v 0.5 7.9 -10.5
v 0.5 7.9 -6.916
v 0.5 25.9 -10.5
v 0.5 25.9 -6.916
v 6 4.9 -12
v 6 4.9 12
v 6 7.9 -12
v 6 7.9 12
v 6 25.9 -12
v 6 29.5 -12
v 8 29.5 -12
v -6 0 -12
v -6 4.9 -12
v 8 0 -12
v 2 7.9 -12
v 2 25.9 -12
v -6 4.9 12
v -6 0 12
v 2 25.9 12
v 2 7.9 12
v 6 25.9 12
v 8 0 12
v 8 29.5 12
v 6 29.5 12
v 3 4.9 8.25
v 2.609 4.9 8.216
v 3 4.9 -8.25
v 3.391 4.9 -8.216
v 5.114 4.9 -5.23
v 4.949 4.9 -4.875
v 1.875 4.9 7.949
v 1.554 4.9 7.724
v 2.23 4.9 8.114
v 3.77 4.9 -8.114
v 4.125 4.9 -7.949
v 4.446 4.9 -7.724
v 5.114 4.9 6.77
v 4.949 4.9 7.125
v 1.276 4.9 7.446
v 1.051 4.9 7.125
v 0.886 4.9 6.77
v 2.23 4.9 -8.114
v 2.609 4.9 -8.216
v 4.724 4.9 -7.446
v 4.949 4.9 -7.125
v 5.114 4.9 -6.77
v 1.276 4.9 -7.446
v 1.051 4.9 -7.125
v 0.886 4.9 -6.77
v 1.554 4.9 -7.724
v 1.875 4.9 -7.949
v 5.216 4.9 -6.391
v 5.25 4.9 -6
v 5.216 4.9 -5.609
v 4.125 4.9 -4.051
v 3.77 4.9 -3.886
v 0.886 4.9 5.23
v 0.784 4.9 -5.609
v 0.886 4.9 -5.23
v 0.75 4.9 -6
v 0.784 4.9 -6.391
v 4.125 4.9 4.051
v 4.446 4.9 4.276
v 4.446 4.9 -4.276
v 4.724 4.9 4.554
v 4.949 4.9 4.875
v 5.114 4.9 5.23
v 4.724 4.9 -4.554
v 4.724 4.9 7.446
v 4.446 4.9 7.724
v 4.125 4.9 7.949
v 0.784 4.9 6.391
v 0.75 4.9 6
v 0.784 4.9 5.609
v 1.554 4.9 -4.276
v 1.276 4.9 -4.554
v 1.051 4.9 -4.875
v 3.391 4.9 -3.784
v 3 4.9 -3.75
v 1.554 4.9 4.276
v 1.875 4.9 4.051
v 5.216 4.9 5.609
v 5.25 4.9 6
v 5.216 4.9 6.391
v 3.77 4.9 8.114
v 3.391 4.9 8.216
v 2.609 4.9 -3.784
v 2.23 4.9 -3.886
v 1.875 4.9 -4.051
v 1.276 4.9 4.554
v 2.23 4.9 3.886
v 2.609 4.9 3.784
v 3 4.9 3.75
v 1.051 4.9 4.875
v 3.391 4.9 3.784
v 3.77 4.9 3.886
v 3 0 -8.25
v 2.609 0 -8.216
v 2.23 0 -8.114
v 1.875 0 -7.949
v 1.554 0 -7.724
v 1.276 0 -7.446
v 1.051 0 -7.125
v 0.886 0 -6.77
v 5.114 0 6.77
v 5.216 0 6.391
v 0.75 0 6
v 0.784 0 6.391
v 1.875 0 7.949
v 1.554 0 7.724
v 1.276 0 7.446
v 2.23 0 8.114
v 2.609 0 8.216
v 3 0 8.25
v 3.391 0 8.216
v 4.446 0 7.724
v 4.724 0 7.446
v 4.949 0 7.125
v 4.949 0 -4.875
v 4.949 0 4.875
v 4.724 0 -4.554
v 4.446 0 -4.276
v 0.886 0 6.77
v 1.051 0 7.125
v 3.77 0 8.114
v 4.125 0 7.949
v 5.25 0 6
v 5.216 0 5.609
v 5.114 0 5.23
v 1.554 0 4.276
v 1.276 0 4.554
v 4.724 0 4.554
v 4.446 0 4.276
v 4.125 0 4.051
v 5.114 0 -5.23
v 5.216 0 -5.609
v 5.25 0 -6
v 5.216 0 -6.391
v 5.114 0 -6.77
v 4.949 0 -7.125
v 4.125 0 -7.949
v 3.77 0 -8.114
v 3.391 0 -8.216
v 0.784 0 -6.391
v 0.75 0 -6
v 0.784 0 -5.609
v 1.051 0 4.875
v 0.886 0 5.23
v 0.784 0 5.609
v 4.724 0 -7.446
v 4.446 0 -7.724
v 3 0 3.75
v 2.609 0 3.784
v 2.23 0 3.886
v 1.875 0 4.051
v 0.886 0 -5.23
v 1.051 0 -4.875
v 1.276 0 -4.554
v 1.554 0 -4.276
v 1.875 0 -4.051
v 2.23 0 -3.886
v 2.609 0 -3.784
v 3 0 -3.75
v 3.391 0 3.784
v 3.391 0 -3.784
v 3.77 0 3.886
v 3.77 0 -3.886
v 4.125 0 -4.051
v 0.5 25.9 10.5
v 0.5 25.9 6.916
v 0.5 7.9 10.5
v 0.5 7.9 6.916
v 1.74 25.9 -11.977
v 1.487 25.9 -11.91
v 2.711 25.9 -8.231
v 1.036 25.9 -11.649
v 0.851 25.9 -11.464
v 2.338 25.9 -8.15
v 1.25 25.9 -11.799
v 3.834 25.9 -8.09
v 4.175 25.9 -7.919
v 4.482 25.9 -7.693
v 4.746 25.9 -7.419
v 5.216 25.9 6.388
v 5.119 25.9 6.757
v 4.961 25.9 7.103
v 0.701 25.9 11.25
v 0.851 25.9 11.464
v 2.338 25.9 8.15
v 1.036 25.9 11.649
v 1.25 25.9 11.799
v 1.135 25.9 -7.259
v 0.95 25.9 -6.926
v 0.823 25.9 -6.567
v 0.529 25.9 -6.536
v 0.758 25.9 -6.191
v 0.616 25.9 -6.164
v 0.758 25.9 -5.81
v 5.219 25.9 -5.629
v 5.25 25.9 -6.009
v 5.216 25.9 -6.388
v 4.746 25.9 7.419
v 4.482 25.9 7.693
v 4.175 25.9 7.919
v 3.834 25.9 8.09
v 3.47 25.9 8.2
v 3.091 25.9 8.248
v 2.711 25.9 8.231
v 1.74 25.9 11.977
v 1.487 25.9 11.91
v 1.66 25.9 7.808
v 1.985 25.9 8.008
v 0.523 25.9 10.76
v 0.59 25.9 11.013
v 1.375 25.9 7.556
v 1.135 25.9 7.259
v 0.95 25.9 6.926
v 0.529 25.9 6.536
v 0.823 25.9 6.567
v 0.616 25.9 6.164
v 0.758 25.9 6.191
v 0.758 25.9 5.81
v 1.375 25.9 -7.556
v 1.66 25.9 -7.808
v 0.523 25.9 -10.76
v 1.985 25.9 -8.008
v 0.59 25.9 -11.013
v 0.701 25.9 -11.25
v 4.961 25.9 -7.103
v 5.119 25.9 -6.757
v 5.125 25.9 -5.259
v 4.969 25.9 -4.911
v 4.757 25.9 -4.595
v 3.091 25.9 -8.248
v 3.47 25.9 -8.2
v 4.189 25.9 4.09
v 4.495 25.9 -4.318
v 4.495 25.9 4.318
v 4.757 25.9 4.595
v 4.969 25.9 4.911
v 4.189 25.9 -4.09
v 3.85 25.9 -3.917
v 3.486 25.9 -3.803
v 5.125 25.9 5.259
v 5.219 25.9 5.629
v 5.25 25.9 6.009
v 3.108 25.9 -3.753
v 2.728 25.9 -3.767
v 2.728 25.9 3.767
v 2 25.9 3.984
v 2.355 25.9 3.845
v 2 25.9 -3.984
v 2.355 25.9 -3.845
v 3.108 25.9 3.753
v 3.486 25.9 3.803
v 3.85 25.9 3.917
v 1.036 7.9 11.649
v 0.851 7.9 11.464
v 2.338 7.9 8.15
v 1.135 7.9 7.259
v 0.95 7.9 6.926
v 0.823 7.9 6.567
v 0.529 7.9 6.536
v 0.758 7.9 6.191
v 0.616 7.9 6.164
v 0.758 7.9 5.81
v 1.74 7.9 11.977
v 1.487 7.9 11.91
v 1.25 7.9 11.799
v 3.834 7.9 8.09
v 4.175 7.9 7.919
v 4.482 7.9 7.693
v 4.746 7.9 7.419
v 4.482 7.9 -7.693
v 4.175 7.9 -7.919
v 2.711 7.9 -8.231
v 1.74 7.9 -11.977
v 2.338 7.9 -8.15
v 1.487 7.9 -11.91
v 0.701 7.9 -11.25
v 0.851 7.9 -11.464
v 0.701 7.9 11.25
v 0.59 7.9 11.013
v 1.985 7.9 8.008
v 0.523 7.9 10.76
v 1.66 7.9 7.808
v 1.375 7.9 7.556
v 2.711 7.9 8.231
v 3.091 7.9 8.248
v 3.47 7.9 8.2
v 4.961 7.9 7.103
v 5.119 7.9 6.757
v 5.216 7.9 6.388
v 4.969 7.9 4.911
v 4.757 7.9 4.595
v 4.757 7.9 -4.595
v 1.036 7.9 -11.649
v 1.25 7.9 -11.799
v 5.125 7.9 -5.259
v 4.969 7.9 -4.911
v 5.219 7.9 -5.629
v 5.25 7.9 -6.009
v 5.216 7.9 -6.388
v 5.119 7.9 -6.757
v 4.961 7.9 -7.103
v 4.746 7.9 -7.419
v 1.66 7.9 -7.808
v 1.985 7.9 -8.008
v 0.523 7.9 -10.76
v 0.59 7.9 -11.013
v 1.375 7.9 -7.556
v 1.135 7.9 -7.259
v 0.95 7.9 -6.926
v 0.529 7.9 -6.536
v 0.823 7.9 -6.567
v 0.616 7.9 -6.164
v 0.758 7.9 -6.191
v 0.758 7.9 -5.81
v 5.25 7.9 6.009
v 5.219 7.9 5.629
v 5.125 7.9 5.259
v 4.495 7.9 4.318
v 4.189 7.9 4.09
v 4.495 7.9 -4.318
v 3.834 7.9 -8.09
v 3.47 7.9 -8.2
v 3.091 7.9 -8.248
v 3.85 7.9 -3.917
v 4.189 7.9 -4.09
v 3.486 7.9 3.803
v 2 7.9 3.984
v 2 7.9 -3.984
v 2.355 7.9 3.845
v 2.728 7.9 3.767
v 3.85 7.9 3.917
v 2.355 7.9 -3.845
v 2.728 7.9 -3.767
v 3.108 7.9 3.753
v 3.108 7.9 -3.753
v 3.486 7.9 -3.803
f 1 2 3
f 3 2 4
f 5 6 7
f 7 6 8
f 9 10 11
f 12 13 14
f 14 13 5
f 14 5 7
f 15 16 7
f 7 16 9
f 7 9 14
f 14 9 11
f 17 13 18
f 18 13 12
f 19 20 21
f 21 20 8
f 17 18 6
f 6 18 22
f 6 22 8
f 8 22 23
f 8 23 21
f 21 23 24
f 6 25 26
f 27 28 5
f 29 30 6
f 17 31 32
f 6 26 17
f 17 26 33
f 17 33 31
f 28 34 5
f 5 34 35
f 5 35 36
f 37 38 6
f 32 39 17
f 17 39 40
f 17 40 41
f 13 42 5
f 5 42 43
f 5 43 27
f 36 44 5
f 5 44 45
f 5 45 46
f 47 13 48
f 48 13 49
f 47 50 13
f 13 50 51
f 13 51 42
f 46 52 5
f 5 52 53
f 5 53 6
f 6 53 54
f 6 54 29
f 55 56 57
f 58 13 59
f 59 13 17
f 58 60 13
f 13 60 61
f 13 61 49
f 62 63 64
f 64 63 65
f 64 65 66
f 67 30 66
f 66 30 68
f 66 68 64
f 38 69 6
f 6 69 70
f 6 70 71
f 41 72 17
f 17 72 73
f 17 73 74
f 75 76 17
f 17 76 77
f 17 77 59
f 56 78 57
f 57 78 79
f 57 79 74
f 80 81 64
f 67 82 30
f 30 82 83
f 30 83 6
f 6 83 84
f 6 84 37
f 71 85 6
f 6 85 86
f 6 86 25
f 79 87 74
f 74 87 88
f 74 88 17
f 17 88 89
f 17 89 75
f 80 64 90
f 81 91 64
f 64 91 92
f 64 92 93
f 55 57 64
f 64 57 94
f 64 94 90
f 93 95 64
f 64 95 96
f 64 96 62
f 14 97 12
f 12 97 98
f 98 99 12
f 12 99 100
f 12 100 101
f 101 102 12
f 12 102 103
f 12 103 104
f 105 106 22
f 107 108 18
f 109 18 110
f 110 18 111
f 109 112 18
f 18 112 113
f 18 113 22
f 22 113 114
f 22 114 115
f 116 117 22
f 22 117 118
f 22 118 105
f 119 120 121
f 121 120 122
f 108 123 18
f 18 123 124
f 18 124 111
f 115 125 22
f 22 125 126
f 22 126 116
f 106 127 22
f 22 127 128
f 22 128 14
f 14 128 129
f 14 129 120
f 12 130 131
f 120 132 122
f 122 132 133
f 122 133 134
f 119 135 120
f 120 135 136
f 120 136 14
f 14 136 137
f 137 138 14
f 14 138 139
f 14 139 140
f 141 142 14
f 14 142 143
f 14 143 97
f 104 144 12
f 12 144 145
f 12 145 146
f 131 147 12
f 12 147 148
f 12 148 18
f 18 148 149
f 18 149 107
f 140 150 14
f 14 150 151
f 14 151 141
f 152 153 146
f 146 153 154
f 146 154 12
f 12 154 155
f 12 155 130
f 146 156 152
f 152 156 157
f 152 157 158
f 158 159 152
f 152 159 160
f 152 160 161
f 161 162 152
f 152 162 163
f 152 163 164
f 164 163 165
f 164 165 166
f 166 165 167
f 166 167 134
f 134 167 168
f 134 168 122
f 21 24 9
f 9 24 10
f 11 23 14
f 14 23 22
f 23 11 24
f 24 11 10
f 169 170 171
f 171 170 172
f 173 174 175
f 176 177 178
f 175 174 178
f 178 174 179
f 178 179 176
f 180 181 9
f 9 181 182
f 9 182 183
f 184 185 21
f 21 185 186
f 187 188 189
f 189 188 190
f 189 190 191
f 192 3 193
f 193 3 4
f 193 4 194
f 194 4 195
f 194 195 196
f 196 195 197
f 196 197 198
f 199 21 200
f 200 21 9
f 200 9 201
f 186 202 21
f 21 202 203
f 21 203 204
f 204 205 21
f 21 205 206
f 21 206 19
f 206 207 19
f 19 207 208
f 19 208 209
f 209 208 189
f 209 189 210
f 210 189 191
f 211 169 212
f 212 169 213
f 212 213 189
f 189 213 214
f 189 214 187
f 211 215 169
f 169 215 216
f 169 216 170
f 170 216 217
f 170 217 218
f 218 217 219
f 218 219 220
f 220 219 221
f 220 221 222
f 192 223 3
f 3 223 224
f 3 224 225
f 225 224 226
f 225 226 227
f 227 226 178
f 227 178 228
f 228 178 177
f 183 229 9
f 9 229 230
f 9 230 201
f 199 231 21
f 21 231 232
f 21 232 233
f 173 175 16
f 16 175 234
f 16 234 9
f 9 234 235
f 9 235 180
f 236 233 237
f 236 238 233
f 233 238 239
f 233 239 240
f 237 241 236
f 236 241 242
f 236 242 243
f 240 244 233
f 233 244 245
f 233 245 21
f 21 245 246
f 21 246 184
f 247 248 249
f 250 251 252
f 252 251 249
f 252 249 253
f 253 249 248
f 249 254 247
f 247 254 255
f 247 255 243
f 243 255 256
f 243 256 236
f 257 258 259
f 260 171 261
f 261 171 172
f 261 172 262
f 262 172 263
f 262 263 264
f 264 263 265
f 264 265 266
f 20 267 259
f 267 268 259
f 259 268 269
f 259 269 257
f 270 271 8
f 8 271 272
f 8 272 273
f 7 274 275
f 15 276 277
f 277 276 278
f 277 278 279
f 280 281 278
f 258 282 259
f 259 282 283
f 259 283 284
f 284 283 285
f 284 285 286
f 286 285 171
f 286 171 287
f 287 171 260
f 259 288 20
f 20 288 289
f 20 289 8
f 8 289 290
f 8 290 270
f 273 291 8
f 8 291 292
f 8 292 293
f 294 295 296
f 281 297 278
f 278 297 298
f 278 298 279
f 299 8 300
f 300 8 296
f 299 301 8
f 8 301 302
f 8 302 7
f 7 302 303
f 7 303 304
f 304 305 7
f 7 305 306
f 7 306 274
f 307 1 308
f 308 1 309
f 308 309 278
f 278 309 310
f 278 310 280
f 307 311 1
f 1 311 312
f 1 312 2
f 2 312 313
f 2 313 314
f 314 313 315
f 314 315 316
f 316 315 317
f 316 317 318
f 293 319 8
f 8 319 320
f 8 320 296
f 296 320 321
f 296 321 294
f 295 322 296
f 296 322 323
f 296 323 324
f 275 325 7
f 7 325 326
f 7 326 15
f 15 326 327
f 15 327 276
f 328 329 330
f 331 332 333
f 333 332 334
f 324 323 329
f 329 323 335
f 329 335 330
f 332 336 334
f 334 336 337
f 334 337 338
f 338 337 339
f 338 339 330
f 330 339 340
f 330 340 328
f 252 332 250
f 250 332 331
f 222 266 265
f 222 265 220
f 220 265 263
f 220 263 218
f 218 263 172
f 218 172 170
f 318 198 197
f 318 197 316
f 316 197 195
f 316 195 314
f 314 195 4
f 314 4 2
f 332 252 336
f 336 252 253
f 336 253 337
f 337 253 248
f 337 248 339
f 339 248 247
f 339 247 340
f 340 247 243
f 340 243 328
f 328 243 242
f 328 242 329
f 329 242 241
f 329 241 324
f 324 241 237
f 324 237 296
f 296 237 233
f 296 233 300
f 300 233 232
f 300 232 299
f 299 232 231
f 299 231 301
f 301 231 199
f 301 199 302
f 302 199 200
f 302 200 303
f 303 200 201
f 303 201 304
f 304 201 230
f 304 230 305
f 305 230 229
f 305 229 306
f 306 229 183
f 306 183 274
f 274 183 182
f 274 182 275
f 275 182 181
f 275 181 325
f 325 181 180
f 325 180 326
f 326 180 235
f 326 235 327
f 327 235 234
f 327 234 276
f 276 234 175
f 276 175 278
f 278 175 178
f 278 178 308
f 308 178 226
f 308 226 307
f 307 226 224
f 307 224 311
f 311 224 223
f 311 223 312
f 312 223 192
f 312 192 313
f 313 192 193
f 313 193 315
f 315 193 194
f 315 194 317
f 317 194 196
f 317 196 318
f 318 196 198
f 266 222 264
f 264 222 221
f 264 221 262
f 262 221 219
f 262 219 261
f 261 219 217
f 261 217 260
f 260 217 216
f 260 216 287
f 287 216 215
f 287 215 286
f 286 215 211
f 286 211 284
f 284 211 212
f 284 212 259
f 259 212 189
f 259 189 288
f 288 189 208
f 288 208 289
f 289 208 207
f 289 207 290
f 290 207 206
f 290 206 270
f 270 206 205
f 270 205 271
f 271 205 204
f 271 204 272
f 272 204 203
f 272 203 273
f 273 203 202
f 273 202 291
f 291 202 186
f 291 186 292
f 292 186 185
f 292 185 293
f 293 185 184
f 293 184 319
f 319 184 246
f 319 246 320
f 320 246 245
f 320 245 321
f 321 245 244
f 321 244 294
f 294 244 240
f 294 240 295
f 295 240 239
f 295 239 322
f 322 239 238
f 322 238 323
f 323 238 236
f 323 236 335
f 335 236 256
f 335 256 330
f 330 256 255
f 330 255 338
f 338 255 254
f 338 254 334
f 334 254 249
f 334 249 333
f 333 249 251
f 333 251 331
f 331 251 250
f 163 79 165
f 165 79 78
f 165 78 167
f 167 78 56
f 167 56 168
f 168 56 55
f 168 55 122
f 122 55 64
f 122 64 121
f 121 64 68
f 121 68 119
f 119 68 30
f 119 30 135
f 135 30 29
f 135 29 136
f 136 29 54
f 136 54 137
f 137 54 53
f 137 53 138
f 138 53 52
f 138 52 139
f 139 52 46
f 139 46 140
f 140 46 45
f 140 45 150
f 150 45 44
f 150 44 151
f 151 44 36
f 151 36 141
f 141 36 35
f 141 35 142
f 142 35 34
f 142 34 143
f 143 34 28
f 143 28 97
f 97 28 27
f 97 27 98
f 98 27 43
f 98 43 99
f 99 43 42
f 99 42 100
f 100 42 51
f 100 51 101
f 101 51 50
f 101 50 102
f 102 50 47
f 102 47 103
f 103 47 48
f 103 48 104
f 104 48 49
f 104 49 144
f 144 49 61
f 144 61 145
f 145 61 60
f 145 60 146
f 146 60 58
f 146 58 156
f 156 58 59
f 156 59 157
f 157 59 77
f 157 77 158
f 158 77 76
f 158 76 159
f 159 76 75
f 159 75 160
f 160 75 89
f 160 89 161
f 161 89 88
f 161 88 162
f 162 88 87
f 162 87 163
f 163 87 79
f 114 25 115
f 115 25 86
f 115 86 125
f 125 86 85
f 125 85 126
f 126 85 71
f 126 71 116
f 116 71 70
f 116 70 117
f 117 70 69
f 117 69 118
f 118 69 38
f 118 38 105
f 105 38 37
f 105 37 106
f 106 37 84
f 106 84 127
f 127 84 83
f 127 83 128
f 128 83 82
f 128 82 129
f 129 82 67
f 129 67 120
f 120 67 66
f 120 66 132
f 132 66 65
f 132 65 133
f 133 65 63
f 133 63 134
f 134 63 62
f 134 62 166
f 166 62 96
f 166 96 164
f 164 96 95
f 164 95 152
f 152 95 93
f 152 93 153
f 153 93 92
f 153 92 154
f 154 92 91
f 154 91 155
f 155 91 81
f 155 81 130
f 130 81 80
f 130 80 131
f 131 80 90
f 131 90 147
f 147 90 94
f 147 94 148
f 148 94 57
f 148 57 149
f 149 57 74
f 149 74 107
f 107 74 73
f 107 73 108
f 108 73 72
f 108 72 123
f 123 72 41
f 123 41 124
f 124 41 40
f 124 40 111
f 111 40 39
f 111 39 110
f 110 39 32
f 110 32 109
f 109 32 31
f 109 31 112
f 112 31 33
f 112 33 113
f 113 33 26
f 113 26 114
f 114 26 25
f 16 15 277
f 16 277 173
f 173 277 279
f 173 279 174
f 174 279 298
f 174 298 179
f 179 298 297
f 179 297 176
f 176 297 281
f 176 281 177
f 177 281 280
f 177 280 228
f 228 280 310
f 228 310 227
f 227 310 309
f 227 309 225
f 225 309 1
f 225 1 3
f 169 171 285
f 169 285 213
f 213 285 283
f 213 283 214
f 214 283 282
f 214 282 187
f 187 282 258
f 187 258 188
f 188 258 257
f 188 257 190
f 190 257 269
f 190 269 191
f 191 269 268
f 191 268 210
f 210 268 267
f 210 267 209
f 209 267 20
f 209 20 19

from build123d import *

# Parameters (mm, degrees)
SKETCH1_W           = 12
SKETCH1_H           = 24
BOSS_EXTRUDE1_DEPTH = 4.9
SKETCH2_W           = 2
SKETCH2_H           = 24
BOSS_EXTRUDE2_DEPTH = 29.5
BOSS_EXTRUDE4_START = 3
SKETCH4_W           = 5.5
SKETCH4_H           = 24
BOSS_EXTRUDE4_DEPTH = 18
SKETCH5_W           = 9.25
SKETCH5_H           = 18
CUT_EXTRUDE1_DEPTH  = 1.5
FILLET1_R           = 2.5
SKETCH6_R           = 2.25
CUT_EXTRUDE2_DEPTH  = 30.644729717
FILLET2_R           = 1.5


with BuildPart() as part:
    # Sketch1 → Boss-Extrude1 (new body)
    with BuildSketch(Plane(origin=(0, 0, 0), x_dir=(1, 0, 0), z_dir=(0, 1, 0))):
        Rectangle(SKETCH1_W, SKETCH1_H)
    extrude(amount=BOSS_EXTRUDE1_DEPTH)

    # Sketch2 → Boss-Extrude2 (add)
    with BuildSketch(Plane(origin=(0, 0, 0), x_dir=(1, 0, 0), z_dir=(0, 1, 0))):
        with Locations((7, 0)):
            Rectangle(SKETCH2_W, SKETCH2_H)
    extrude(amount=BOSS_EXTRUDE2_DEPTH)

    # Sketch4 → Boss-Extrude4 (add)
    with BuildSketch(Plane(origin=(0, 4.9, 0), x_dir=(1, 0, 0), z_dir=(0, 1, 0)).offset(BOSS_EXTRUDE4_START)):
        with Locations((3.25, 0)):
            Rectangle(SKETCH4_W, SKETCH4_H)
    extrude(amount=BOSS_EXTRUDE4_DEPTH)

    # Sketch5 → Cut-Extrude1 (cut)
    with BuildSketch(Plane.ZY.offset(-0.5)):
        with Locations((0, 16.9)):
            Rectangle(SKETCH5_W, SKETCH5_H)
    extrude(amount=-CUT_EXTRUDE1_DEPTH, mode=Mode.SUBTRACT)

    # Fillet1
    # the kernel refuses this fillet: 2.5 mm, written as the material it takes off along each edge
    with BuildSketch(Plane(origin=(0.5, 31.628219619, 4.625), x_dir=(0, 0, 1), z_dir=(0, -1, 0)), Plane(origin=(0.5, 7.9, -4.625), x_dir=(0, 0, -1), z_dir=(0, 1, 0))) as fillet1_piece_1:
        with BuildLine():
            CenterArc((2.291287847, -2.5), FILLET1_R, 90, 66.421821522)
            Line((0, -1.5), (0, 0))
            Line((0, 0), (2.291287847, 0))
        make_face()
    extrude(amount=23.728219619, mode=Mode.SUBTRACT)

    # Sketch6 → Cut-Extrude2 (cut, through all)
    with BuildSketch(Plane(origin=(0, 25.9, 0), x_dir=(1, 0, 0), z_dir=(0, 1, 0))):
        with Locations(Location((3, -6, 0), (0, 0, 270))):
            Circle(SKETCH6_R)
        with Locations(Location((3, 6, 0), (0, 0, 270))):
            Circle(SKETCH6_R)
    extrude(amount=-CUT_EXTRUDE2_DEPTH, mode=Mode.SUBTRACT)

    # Fillet2
    fillet2_edges = [part.edges().sort_by_distance(p)[0] for p in [
        (0.5, 16.9, -12),
        (0.5, 16.9, 12),
    ]]
    fillet(fillet2_edges, radius=FILLET2_R)


solid = part.part
